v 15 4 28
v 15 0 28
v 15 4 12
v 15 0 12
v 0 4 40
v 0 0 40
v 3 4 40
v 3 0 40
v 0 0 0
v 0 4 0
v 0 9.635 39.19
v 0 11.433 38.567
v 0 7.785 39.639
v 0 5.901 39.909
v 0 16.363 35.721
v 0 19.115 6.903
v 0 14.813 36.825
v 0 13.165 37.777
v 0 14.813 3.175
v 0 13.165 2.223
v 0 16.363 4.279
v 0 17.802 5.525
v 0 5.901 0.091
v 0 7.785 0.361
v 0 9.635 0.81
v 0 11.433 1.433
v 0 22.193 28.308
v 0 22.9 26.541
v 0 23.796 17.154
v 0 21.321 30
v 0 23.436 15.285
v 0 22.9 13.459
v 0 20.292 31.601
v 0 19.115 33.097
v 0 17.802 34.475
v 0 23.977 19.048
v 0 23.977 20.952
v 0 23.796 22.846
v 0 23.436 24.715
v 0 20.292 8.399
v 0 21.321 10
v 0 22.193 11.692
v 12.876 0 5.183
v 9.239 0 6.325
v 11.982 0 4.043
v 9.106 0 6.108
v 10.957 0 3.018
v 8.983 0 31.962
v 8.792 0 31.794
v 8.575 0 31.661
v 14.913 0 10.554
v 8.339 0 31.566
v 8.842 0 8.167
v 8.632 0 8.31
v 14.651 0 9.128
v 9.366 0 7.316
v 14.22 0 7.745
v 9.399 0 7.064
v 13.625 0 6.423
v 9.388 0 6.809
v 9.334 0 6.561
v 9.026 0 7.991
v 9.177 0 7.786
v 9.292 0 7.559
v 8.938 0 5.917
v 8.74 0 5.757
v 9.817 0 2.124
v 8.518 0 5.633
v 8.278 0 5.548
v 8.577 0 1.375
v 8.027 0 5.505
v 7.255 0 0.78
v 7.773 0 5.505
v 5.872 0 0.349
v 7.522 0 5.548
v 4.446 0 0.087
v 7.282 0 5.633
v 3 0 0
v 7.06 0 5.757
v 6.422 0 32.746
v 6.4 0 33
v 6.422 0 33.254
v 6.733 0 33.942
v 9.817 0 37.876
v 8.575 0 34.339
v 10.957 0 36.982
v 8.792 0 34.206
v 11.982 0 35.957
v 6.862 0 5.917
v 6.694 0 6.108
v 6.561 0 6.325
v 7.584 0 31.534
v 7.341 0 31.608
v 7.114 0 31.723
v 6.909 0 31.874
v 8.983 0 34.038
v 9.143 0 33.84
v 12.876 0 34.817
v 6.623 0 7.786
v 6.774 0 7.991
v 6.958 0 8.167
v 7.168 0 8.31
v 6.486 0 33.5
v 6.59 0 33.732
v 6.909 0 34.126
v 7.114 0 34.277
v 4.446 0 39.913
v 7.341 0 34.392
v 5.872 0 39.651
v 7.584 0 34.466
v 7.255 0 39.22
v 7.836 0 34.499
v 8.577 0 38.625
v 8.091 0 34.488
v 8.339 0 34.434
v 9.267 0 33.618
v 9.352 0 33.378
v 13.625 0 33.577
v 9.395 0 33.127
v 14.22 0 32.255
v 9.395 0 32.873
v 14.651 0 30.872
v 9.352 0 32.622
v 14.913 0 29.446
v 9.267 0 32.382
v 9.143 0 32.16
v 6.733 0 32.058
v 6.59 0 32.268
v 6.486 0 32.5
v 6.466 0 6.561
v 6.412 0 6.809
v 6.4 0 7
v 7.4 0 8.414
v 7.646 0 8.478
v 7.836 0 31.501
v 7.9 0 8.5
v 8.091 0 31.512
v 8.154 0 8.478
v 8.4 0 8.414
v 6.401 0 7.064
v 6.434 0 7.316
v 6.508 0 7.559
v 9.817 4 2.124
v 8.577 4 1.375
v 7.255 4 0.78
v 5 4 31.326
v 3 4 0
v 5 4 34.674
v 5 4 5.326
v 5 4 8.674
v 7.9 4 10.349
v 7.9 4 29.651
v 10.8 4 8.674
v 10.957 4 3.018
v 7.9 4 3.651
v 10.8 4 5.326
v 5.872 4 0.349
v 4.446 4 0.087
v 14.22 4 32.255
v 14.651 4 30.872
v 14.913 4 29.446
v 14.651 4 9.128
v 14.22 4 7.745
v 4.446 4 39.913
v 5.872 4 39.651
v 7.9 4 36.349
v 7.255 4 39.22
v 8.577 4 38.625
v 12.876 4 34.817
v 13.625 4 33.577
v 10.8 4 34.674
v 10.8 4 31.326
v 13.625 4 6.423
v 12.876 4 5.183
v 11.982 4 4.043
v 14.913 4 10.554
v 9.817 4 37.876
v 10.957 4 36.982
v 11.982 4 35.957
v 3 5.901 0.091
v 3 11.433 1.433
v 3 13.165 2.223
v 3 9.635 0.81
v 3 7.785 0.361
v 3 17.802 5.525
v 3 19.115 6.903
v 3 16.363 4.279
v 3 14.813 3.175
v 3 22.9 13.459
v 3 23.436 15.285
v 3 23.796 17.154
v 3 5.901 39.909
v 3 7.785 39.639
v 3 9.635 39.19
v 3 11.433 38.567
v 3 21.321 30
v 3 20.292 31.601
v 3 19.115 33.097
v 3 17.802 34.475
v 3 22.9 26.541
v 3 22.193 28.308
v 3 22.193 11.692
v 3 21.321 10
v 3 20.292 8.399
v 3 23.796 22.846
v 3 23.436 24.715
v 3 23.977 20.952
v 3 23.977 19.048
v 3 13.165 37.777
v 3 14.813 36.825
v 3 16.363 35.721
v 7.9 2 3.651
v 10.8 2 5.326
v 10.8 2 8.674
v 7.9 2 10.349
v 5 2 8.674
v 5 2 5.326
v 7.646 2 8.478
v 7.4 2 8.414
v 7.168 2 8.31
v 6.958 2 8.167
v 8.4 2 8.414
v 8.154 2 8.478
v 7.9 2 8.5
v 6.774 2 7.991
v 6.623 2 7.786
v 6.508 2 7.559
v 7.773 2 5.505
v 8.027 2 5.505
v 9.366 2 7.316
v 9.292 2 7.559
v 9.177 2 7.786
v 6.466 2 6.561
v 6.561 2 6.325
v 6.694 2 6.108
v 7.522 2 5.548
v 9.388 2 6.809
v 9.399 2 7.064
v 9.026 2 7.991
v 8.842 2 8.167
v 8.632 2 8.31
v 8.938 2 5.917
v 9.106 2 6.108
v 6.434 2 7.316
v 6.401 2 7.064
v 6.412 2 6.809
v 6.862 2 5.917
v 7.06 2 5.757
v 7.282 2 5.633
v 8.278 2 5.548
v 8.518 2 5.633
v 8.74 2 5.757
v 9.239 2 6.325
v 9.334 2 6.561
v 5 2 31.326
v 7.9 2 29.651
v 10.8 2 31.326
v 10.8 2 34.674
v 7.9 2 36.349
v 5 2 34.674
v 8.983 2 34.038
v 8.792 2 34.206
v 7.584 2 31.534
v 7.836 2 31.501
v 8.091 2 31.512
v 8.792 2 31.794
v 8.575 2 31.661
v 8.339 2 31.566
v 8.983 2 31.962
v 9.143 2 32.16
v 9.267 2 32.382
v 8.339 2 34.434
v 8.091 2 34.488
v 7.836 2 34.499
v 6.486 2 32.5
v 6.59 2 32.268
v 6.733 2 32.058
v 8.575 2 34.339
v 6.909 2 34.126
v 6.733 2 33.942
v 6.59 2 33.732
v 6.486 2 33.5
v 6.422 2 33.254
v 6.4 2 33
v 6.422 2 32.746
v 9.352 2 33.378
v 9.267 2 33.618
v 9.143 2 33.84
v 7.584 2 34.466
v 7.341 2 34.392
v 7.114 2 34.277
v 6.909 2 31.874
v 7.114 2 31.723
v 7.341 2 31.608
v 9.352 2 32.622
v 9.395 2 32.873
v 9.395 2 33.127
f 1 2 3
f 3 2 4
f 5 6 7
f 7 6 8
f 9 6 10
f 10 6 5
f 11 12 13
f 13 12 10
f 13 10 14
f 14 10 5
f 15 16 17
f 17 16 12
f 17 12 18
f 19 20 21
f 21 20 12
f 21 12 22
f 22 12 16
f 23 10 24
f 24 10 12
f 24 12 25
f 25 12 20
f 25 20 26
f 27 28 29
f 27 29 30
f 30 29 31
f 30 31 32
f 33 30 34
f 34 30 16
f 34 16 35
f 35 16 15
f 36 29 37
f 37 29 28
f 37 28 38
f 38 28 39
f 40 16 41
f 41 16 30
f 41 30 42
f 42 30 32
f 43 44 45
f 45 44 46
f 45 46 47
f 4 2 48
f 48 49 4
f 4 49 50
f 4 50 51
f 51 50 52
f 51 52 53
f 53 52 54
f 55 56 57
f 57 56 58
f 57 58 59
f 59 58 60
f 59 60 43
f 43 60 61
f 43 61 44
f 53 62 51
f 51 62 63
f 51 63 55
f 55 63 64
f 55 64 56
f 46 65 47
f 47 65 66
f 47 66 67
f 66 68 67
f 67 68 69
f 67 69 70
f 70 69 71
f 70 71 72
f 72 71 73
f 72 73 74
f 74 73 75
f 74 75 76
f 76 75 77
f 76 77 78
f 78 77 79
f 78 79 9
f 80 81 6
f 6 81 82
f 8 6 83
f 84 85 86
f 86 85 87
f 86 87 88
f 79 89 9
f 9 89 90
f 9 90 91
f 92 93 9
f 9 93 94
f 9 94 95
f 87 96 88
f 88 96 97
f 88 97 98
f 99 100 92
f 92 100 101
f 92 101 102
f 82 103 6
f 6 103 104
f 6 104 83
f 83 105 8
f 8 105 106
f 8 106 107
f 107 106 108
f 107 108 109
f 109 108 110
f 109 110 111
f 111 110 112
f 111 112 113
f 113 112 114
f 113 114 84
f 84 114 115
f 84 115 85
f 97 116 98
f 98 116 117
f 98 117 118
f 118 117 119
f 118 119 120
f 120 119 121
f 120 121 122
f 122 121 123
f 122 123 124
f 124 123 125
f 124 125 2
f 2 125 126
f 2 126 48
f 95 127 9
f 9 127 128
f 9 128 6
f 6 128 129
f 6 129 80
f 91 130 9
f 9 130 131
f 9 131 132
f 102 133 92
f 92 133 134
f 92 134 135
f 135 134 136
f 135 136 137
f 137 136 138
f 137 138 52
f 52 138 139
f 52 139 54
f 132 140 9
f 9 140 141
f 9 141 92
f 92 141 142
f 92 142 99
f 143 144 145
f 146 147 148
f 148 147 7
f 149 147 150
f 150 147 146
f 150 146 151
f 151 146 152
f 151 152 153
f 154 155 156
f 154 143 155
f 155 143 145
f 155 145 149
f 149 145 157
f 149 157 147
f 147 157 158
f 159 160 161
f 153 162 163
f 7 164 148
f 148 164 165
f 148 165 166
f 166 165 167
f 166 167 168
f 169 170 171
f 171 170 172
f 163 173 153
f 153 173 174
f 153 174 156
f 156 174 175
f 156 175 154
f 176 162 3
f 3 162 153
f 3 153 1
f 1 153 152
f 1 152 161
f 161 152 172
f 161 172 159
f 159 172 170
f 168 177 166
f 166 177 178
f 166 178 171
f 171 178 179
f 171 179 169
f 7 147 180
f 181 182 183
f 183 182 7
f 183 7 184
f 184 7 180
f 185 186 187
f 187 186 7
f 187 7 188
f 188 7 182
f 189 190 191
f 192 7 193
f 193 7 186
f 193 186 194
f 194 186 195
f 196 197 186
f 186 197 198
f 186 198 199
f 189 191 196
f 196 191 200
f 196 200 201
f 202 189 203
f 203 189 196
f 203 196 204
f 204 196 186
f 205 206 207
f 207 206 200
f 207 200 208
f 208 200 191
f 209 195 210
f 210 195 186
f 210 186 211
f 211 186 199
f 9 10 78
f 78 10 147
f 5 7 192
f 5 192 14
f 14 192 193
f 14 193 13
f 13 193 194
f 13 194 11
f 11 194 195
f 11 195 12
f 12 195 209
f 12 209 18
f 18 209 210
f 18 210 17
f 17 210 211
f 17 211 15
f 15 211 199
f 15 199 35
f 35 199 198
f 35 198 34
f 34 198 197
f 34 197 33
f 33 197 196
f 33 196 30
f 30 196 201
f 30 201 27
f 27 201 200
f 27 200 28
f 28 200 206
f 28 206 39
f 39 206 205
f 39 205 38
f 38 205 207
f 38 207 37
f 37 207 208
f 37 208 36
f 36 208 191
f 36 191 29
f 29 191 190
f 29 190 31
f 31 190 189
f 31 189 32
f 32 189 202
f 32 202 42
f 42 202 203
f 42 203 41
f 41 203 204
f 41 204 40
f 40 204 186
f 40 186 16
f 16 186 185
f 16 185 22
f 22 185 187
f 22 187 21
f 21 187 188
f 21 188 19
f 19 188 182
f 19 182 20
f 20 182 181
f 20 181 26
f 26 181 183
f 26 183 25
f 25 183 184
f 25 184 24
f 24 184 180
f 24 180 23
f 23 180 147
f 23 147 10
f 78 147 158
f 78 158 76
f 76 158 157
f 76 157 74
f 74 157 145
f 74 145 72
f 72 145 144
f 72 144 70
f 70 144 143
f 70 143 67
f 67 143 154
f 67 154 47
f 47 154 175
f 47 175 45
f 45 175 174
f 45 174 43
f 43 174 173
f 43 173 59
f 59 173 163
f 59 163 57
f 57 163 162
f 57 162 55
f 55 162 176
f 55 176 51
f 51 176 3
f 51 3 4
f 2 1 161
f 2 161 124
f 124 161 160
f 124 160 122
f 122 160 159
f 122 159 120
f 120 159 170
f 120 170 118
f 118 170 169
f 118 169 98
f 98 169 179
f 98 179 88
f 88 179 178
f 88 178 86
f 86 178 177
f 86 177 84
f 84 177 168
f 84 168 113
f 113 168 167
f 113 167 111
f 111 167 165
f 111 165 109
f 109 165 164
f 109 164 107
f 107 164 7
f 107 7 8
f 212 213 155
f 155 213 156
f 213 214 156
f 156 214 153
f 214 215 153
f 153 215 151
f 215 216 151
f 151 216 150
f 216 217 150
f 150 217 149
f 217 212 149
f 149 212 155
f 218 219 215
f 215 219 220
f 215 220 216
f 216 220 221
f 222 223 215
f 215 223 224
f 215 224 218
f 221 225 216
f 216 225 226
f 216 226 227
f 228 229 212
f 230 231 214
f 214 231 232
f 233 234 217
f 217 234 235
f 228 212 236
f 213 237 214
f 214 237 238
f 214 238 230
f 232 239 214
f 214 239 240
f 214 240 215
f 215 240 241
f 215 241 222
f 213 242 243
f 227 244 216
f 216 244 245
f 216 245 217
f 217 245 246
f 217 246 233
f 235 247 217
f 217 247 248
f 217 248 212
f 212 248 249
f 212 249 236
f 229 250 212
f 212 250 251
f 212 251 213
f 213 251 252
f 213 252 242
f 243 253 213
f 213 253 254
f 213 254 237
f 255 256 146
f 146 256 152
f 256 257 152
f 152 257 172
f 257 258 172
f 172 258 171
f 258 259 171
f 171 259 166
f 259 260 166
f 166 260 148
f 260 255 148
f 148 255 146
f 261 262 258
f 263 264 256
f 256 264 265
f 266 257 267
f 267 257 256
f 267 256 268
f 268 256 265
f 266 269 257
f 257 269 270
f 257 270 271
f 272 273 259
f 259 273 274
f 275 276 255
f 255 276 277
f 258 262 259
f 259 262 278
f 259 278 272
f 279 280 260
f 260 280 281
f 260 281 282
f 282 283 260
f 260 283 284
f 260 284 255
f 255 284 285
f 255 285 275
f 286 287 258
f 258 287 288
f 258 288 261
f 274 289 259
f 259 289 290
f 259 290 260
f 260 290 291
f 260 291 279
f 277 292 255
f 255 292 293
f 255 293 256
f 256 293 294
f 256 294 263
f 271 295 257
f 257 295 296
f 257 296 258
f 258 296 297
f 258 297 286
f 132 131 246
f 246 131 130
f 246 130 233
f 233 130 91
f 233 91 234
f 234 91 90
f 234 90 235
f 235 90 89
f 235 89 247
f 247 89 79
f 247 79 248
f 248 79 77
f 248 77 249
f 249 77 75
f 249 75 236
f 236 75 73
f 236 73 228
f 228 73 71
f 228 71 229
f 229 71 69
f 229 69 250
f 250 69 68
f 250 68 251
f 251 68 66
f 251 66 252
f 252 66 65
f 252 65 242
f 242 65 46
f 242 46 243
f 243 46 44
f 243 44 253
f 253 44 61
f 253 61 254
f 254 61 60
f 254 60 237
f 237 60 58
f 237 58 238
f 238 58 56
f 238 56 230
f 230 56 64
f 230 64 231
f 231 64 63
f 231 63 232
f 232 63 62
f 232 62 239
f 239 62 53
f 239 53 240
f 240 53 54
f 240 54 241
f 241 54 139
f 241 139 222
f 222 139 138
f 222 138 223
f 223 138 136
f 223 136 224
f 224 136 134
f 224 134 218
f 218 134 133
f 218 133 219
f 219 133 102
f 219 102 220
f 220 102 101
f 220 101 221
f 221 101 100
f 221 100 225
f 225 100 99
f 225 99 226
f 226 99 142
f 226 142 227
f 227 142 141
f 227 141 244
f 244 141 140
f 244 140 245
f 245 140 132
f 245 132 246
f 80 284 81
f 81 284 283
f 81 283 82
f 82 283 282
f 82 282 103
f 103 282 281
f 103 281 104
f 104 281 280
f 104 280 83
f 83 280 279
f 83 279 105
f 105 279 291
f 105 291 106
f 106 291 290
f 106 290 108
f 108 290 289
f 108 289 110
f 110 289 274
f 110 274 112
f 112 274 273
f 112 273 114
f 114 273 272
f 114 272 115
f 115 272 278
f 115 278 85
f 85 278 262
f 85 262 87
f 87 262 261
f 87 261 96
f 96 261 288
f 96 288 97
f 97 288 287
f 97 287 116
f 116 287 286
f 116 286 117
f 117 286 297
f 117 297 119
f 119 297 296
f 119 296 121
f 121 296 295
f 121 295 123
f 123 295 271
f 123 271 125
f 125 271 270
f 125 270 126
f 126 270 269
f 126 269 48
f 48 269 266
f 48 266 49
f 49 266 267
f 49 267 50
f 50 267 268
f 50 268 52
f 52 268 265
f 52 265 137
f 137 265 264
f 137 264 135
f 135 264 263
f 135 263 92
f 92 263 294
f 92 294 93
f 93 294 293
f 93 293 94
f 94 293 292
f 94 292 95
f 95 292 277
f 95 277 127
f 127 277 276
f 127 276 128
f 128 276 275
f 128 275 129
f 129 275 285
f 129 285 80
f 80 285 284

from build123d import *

# Parameters (mm, degrees)
SALIENTE_EXTRUIR1_DEPTH = 40
CORTAR_EXTRUIR4_DEPTH   = 10
CORTAR_EXTRUIR5_DEPTH   = 10
CORTAR_EXTRUIR6_DEPTH   = 2
CROQUIS8_R              = 1.5
CORTAR_EXTRUIR7_DEPTH   = 42
CROQUIS9_R              = 1.5
CORTAR_EXTRUIR8_DEPTH   = 42


with BuildPart() as part:
    # Croquis2 → Saliente-Extruir1 (new body)
    with BuildSketch(Plane.XY):
        Polygon((0, 26), (3, 26), (3, 4), (15, 4), (15, 0), (0, 0), align=None)
    extrude(amount=SALIENTE_EXTRUIR1_DEPTH)

    # Croquis6 → Cortar-Extruir4 (cut)
    with BuildSketch(Plane(origin=(3, 0, 0), x_dir=(0, 0, -1), z_dir=(1, 0, 0))):
        with BuildLine():
            Line((-40, 4), (-43.463242579, 10.305944429))
            Line((-43.463242579, 10.305944429), (-46.103119836, 28.990848346))
            Line((-46.103119836, 28.990848346), (-47.186653475, 36.660038985))
            Line((-47.186653475, 36.660038985), (8.796856155, 26.447825939))
            Line((8.796856155, 26.447825939), (6.381141064, 12.03440645))
            Line((6.381141064, 12.03440645), (0, 4))
            ThreePointArc((0, 4), (-20, 24), (-40, 4))
        make_face()
    extrude(amount=-CORTAR_EXTRUIR4_DEPTH, mode=Mode.SUBTRACT)

    # Croquis5 → Cortar-Extruir5 (cut)
    with BuildSketch(Plane(origin=(0, 4, 0), x_dir=(1, 0, 0), z_dir=(0, 1, 0))):
        with BuildLine():
            Line((15, -12), (15, -28))
            ThreePointArc((15, -28), (11.485281374, -36.485281374), (3, -40))
            Line((3, -40), (17.00840725, -44.81222058))
            Line((17.00840725, -44.81222058), (27.206798155, -5.039954665))
            Line((27.206798155, -5.039954665), (15.87267332, 7.755192399))
            Line((15.87267332, 7.755192399), (3, 0))
            ThreePointArc((3, 0), (11.485281374, -3.514718626), (15, -12))
        make_face()
    extrude(amount=-CORTAR_EXTRUIR5_DEPTH, mode=Mode.SUBTRACT)

    # Croquis7 → Cortar-Extruir6 (cut)
    with BuildSketch(Plane(origin=(0, 4, 0), x_dir=(1, 0, 0), z_dir=(0, 1, 0))):
        Polygon((7.9, -3.651368439), (5, -5.325684219), (5, -8.674315781), (7.9, -10.348631561), (10.8, -8.674315781), (10.8, -5.325684219), align=None)
        Polygon((5, -31.325684219), (5, -34.674315781), (7.9, -36.348631561), (10.8, -34.674315781), (10.8, -31.325684219), (7.9, -29.651368439), align=None)
    extrude(amount=-CORTAR_EXTRUIR6_DEPTH, mode=Mode.SUBTRACT)

    # Croquis8 → Cortar-Extruir7 (cut)
    with BuildSketch(Plane(origin=(0, 2, 0), x_dir=(1, 0, 0), z_dir=(0, 1, 0))):
        with Locations(Location((7.9, -7, 0), (0, 0, 270))):
            Circle(CROQUIS8_R)
    extrude(amount=-CORTAR_EXTRUIR7_DEPTH, mode=Mode.SUBTRACT)

    # Croquis9 → Cortar-Extruir8 (cut)
    with BuildSketch(Plane(origin=(0, 2, 0), x_dir=(1, 0, 0), z_dir=(0, 1, 0))):
        with Locations(Location((7.9, -33, 0), (0, 0, 180))):
            Circle(CROQUIS9_R)
    extrude(amount=-CORTAR_EXTRUIR8_DEPTH, mode=Mode.SUBTRACT)


solid = part.part
